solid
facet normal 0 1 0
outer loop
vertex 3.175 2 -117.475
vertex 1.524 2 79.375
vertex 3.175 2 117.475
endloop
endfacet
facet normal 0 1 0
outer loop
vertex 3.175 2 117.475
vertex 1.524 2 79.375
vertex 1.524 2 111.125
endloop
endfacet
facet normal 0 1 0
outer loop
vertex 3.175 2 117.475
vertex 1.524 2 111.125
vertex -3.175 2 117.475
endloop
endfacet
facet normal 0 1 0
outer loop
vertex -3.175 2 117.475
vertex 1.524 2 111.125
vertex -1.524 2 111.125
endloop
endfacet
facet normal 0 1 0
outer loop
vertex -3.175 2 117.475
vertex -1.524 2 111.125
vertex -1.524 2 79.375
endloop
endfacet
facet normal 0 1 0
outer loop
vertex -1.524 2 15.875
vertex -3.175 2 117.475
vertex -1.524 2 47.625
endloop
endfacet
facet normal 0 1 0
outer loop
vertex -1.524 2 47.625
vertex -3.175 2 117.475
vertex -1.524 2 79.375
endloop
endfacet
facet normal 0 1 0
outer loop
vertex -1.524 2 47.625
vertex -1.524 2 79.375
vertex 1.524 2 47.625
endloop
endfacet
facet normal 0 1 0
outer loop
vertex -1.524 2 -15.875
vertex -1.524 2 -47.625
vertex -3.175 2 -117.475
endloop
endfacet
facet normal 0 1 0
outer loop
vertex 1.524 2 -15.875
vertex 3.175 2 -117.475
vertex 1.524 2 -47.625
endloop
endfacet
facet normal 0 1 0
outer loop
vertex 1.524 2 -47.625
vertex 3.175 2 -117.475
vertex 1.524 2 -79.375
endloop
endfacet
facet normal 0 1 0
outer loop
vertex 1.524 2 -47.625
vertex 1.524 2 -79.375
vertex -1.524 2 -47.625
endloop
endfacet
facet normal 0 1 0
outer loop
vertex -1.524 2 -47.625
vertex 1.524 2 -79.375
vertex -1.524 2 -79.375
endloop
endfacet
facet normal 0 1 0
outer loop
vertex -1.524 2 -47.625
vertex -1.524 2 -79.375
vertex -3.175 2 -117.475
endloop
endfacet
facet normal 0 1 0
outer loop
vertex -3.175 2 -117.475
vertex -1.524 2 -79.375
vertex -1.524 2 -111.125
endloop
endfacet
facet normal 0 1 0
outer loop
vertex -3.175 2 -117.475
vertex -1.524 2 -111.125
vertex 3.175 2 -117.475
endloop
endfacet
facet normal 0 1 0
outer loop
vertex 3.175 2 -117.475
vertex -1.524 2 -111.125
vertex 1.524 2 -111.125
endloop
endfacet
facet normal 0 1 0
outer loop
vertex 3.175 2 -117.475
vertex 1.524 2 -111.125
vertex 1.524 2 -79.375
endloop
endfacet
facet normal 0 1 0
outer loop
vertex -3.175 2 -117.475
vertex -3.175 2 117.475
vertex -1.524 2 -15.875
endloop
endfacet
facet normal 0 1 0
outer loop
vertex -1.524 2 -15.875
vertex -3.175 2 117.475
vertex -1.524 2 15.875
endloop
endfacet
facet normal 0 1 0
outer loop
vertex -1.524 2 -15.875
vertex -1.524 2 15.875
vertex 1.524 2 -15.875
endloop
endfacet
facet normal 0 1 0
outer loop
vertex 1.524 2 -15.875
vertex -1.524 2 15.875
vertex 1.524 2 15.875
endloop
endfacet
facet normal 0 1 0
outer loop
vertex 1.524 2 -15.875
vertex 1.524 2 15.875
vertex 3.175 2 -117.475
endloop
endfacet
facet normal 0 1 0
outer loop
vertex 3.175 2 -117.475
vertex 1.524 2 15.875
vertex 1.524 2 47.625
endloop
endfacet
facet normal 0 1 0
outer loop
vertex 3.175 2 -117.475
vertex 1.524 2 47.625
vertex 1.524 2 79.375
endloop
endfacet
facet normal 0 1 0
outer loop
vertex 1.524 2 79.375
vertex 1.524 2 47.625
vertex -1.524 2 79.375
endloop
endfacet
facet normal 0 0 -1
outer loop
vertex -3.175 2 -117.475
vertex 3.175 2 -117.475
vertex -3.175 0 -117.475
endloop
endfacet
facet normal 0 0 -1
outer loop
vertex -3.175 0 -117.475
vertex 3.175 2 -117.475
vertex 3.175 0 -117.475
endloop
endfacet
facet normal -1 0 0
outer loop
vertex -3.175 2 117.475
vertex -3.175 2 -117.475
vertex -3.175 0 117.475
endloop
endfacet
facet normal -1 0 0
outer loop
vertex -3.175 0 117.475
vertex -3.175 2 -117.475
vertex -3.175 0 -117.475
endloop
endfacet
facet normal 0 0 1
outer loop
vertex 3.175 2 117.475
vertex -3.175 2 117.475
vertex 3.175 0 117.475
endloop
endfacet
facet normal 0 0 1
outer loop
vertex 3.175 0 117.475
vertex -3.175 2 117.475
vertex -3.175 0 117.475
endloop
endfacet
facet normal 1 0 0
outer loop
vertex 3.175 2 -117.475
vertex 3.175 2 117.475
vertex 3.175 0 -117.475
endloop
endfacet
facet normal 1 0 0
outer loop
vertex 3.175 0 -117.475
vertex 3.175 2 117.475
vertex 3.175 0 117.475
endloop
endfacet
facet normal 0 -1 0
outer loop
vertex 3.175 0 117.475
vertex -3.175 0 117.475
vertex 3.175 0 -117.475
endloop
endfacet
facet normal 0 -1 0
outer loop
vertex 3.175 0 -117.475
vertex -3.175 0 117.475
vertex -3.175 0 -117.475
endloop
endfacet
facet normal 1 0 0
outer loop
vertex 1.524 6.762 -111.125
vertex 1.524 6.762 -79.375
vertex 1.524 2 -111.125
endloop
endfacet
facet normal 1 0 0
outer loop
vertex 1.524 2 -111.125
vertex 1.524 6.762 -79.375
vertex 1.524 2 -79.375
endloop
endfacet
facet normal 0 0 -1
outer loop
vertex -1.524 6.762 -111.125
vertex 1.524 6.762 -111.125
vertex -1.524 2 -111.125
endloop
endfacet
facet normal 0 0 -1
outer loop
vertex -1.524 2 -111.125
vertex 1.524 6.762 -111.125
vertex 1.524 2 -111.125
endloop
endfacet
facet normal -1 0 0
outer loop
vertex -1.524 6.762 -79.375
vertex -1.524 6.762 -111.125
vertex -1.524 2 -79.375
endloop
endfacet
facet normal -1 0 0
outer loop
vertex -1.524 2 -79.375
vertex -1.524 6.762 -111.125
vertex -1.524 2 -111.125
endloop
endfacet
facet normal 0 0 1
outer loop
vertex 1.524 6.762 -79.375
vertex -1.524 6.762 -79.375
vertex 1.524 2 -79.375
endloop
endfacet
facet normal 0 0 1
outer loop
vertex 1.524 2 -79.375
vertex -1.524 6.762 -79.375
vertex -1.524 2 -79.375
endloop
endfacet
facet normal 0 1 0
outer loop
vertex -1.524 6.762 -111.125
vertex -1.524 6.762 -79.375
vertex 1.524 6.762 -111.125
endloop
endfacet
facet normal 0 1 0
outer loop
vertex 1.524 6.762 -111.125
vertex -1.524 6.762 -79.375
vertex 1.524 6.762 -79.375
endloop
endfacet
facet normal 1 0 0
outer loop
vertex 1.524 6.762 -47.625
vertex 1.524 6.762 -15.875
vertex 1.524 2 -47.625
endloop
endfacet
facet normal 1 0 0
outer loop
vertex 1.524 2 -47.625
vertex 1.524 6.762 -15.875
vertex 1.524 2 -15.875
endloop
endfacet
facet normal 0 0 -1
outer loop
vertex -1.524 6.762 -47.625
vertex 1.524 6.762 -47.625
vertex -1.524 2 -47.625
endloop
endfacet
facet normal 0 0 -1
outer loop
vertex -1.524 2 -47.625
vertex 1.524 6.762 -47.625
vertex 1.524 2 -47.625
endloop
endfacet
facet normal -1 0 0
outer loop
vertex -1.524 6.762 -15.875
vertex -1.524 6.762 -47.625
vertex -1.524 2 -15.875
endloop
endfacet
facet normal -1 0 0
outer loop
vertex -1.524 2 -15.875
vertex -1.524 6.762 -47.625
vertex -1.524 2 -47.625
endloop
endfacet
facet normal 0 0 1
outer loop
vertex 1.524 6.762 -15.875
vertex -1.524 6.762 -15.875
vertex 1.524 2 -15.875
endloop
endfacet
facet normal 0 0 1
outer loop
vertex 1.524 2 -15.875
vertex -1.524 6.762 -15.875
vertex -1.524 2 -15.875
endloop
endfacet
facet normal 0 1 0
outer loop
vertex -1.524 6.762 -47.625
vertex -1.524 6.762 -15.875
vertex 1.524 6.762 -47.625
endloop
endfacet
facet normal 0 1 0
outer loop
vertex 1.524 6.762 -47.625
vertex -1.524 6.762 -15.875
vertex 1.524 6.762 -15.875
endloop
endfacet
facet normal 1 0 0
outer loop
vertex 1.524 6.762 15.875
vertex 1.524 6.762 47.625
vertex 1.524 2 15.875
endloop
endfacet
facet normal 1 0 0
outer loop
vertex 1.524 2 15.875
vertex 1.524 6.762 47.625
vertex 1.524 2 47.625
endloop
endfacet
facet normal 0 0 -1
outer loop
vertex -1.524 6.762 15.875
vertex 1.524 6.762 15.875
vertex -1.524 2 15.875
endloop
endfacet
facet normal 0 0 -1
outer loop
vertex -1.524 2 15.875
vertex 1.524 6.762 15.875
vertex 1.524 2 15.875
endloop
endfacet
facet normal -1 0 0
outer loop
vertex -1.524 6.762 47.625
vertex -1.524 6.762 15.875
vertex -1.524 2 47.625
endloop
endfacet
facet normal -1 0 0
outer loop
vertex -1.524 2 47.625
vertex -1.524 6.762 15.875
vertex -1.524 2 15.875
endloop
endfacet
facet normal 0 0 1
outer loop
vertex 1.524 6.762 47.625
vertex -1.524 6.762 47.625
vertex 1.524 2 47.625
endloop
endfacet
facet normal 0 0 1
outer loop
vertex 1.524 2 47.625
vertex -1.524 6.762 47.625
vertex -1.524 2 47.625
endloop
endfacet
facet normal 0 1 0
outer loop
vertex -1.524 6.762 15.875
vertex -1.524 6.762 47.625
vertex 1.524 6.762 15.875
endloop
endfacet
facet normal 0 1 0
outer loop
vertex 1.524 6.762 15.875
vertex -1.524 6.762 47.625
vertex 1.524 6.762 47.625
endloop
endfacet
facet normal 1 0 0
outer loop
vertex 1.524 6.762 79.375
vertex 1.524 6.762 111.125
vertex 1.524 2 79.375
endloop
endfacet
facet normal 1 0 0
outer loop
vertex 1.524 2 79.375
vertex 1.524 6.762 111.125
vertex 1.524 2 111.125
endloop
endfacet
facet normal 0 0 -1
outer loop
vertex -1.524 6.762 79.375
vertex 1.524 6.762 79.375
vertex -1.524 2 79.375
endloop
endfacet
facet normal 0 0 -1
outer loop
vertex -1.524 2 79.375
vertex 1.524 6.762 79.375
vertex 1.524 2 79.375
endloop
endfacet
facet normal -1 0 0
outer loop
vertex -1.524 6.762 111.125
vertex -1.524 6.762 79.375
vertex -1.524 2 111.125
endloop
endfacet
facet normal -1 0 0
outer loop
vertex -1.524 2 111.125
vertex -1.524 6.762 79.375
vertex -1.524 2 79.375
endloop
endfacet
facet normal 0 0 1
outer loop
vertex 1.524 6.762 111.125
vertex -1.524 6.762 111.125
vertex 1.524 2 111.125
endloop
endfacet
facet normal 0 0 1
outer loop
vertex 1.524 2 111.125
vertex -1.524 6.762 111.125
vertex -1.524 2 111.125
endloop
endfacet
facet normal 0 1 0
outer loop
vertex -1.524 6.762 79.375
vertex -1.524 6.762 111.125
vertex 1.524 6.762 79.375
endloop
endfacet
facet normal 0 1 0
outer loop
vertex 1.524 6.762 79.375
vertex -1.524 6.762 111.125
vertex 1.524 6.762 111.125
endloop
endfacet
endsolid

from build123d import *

# Parameters (mm, degrees)
SKETCH1_W           = 1.524
SKETCH1_H           = 31.75
BOSS_EXTRUDE1_DEPTH = 2
BOSS_EXTRUDE2_START = 2
SKETCH1_3_W         = 1.524
SKETCH1_3_H         = 31.75
BOSS_EXTRUDE2_DEPTH = 4.7625


with BuildPart() as part:
    # Sketch1 → Boss-Extrude1 (new body)
    with BuildSketch(Plane(origin=(0, 0, 0), x_dir=(1, 0, 0), z_dir=(0, 1, 0))):
        Polygon((3.175, 117.475), (0, 117.475), (0, 111.125), (1.524, 111.125), (1.524, 79.375), (1.524, 47.625), (1.524, 15.875), (1.524, -15.875), (1.524, -47.625), (1.524, -79.375), (1.524, -111.125), (0, -111.125), (0, -117.475), (3.175, -117.475), align=None)
        Polygon((0, 111.125), (0, 117.475), (-3.175, 117.475), (-3.175, -117.475), (0, -117.475), (0, -111.125), (-1.524, -111.125), (-1.524, -79.375), (-1.524, -47.625), (-1.524, -15.875), (-1.524, 15.875), (-1.524, 47.625), (-1.524, 79.375), (-1.524, 111.125), align=None)
        with Locations((-0.762, 95.25)):
            Rectangle(SKETCH1_W, SKETCH1_H)
        with Locations((0.762, 95.25)):
            Rectangle(SKETCH1_W, SKETCH1_H)
        with Locations((0.762, 63.5)):
            Rectangle(SKETCH1_W, SKETCH1_H)
        with Locations((-0.762, 63.5)):
            Rectangle(SKETCH1_W, SKETCH1_H)
        with Locations((-0.762, 31.75)):
            Rectangle(SKETCH1_W, SKETCH1_H)
        with Locations((0.762, 31.75)):
            Rectangle(SKETCH1_W, SKETCH1_H)
        with Locations((0.762, 0)):
            Rectangle(SKETCH1_W, SKETCH1_H)
        with Locations((-0.762, 0)):
            Rectangle(SKETCH1_W, SKETCH1_H)
        with Locations((0.762, -63.5)):
            Rectangle(SKETCH1_W, SKETCH1_H)
        with Locations((-0.762, -63.5)):
            Rectangle(SKETCH1_W, SKETCH1_H)
        with Locations((-0.762, -95.25)):
            Rectangle(SKETCH1_W, SKETCH1_H)
        with Locations((0.762, -95.25)):
            Rectangle(SKETCH1_W, SKETCH1_H)
        with Locations((0.762, -31.75)):
            Rectangle(SKETCH1_W, SKETCH1_H)
        with Locations((-0.762, -31.75)):
            Rectangle(SKETCH1_W, SKETCH1_H)
    extrude(amount=BOSS_EXTRUDE1_DEPTH)

    # Sketch1<3> → Boss-Extrude2 (add)
    with BuildSketch(Plane(origin=(0, 0, 0), x_dir=(1, 0, 0), z_dir=(0, 1, 0)).offset(BOSS_EXTRUDE2_START)):
        with Locations((0.762, 95.25)):
            Rectangle(SKETCH1_3_W, SKETCH1_3_H)
        with Locations((-0.762, 95.25)):
            Rectangle(SKETCH1_3_W, SKETCH1_3_H)
        with Locations((0.762, 31.75)):
            Rectangle(SKETCH1_3_W, SKETCH1_3_H)
        with Locations((-0.762, 31.75)):
            Rectangle(SKETCH1_3_W, SKETCH1_3_H)
        with Locations((0.762, -31.75)):
            Rectangle(SKETCH1_3_W, SKETCH1_3_H)
        with Locations((-0.762, -31.75)):
            Rectangle(SKETCH1_3_W, SKETCH1_3_H)
        with Locations((0.762, -95.25)):
            Rectangle(SKETCH1_3_W, SKETCH1_3_H)
        with Locations((-0.762, -95.25)):
            Rectangle(SKETCH1_3_W, SKETCH1_3_H)
    extrude(amount=BOSS_EXTRUDE2_DEPTH)


solid = part.part
